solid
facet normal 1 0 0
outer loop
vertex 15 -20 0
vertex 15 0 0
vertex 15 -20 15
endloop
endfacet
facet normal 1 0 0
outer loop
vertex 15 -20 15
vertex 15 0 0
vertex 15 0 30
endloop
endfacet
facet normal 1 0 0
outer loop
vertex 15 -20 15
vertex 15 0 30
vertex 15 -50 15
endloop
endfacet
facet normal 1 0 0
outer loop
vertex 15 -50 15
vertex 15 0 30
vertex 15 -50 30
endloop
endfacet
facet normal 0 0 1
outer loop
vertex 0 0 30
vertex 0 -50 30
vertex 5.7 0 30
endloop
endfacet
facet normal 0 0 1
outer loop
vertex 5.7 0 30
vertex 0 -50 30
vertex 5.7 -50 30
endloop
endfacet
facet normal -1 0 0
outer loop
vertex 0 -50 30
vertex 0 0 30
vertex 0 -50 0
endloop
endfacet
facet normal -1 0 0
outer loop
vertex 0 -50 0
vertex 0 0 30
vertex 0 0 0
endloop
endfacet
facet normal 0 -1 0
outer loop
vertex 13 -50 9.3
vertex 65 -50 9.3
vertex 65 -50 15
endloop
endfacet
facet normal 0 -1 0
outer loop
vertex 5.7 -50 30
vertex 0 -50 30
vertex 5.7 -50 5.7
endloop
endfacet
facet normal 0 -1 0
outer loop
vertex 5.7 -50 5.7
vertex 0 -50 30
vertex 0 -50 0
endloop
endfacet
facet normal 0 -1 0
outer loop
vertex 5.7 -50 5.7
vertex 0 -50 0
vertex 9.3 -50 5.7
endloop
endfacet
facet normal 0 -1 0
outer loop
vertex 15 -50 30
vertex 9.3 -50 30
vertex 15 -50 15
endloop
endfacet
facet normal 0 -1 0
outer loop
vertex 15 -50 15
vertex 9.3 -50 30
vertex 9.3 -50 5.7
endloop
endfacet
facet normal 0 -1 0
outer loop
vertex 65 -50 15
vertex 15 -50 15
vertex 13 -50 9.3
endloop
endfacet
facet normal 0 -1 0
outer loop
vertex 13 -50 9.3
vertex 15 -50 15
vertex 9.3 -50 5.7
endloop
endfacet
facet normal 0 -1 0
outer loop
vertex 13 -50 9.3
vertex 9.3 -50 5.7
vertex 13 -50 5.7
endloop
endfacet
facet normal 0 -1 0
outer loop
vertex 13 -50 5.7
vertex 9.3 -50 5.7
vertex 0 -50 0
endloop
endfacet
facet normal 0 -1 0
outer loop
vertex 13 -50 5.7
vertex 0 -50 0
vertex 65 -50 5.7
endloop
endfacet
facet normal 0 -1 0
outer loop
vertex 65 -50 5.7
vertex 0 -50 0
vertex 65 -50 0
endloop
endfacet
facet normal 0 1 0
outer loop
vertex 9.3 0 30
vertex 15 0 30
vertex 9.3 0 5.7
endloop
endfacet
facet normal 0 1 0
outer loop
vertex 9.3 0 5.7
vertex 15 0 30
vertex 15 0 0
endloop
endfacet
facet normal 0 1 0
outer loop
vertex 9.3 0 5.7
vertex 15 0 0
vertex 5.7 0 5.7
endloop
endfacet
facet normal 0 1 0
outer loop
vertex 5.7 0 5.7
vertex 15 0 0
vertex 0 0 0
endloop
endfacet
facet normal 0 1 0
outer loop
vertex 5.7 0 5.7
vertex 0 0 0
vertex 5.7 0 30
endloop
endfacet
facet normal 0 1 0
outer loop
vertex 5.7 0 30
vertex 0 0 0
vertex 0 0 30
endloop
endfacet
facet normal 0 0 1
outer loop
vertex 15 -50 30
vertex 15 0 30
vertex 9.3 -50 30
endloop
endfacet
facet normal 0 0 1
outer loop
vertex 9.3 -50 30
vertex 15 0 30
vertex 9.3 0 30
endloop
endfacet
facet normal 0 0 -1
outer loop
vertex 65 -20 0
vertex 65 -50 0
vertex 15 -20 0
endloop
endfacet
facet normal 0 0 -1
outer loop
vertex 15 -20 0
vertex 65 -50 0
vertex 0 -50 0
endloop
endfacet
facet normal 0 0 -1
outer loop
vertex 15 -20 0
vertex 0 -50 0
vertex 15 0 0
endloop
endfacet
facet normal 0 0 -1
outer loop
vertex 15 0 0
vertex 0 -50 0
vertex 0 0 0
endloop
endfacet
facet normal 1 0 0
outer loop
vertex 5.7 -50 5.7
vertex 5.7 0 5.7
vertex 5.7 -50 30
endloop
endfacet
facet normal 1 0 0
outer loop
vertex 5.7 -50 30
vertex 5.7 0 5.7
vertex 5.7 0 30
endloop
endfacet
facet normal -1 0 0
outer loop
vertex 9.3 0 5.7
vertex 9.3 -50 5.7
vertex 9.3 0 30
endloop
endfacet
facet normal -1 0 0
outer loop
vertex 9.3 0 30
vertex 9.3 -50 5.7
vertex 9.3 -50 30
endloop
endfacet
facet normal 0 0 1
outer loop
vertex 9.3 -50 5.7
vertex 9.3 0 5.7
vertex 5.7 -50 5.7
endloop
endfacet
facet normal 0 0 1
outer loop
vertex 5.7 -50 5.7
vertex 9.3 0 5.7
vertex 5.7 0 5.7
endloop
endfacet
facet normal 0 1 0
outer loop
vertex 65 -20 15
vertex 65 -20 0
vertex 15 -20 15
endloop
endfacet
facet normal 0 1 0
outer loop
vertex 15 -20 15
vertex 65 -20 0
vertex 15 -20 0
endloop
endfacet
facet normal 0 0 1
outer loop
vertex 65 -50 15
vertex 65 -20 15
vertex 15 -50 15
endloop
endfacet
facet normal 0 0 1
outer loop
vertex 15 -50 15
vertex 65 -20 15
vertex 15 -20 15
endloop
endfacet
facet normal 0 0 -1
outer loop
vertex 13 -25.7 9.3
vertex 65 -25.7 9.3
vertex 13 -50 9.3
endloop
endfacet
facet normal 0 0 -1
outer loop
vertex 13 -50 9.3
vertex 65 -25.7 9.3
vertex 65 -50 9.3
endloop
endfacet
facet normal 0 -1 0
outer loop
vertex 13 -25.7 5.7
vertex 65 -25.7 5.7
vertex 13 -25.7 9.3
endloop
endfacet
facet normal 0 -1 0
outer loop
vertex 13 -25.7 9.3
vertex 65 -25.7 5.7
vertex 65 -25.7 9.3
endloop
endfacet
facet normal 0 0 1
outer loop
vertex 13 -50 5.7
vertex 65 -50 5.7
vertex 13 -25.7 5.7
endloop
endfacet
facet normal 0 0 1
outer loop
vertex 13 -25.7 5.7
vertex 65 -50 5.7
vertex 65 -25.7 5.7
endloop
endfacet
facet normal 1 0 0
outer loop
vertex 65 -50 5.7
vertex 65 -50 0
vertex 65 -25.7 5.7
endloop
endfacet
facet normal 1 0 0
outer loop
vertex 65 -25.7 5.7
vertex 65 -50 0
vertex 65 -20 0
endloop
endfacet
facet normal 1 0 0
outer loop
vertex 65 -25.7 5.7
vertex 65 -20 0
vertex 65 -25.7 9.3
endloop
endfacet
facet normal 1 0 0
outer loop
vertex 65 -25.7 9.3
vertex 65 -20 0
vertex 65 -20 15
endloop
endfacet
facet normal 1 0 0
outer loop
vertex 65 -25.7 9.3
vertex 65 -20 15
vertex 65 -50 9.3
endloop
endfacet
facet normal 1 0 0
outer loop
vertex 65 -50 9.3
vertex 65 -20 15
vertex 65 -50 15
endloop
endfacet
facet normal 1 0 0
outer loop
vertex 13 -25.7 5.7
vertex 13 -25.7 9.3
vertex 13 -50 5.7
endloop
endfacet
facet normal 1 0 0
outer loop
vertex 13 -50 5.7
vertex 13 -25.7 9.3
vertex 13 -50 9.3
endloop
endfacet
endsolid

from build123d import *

# Parameters (mm, degrees)
ESQUISSE1_W             = 15
ESQUISSE1_H             = 50
BOSS_EXTRU_1_DEPTH      = 30
ESQUISSE2_W             = 3.6
ESQUISSE2_H             = 50
ENL_V_MAT_EXTRU_1_DEPTH = 24.3
BOSS_EXTRU_2_DEPTH      = 50
ESQUISSE5_W             = 3.6
ESQUISSE5_H             = 24.3
ENL_V_MAT_EXTRU_2_DEPTH = 2


with BuildPart() as part:
    # Esquisse1 → Boss.-Extru.1 (new body)
    with BuildSketch(Plane.XY):
        with Locations((7.5, -25)):
            Rectangle(ESQUISSE1_W, ESQUISSE1_H)
    extrude(amount=BOSS_EXTRU_1_DEPTH)

    # Esquisse2 → Enlèv. mat.-Extru.1 (cut)
    with BuildSketch(Plane.XY.offset(30)):
        with Locations((7.5, -25)):
            Rectangle(ESQUISSE2_W, ESQUISSE2_H)
    extrude(amount=-ENL_V_MAT_EXTRU_1_DEPTH, mode=Mode.SUBTRACT)

    # Esquisse4 → Boss.-Extru.2 (add)
    with BuildSketch(Plane(origin=(15, 0, 0), x_dir=(0, 0, -1), z_dir=(1, 0, 0))):
        Polygon((0, -50), (0, -20), (-15, -20), (-15, -50), (-9.3, -50), (-9.3, -25.7), (-5.7, -25.7), (-5.7, -50), align=None)
    extrude(amount=BOSS_EXTRU_2_DEPTH)

    # Esquisse5 → Enlèv. mat.-Extru.2 (cut)
    with BuildSketch(Plane(origin=(15, 0, 0), x_dir=(0, 0, -1), z_dir=(1, 0, 0))):
        with Locations((-7.5, -37.85)):
            Rectangle(ESQUISSE5_W, ESQUISSE5_H)
    extrude(amount=-ENL_V_MAT_EXTRU_2_DEPTH, mode=Mode.SUBTRACT)


solid = part.part
